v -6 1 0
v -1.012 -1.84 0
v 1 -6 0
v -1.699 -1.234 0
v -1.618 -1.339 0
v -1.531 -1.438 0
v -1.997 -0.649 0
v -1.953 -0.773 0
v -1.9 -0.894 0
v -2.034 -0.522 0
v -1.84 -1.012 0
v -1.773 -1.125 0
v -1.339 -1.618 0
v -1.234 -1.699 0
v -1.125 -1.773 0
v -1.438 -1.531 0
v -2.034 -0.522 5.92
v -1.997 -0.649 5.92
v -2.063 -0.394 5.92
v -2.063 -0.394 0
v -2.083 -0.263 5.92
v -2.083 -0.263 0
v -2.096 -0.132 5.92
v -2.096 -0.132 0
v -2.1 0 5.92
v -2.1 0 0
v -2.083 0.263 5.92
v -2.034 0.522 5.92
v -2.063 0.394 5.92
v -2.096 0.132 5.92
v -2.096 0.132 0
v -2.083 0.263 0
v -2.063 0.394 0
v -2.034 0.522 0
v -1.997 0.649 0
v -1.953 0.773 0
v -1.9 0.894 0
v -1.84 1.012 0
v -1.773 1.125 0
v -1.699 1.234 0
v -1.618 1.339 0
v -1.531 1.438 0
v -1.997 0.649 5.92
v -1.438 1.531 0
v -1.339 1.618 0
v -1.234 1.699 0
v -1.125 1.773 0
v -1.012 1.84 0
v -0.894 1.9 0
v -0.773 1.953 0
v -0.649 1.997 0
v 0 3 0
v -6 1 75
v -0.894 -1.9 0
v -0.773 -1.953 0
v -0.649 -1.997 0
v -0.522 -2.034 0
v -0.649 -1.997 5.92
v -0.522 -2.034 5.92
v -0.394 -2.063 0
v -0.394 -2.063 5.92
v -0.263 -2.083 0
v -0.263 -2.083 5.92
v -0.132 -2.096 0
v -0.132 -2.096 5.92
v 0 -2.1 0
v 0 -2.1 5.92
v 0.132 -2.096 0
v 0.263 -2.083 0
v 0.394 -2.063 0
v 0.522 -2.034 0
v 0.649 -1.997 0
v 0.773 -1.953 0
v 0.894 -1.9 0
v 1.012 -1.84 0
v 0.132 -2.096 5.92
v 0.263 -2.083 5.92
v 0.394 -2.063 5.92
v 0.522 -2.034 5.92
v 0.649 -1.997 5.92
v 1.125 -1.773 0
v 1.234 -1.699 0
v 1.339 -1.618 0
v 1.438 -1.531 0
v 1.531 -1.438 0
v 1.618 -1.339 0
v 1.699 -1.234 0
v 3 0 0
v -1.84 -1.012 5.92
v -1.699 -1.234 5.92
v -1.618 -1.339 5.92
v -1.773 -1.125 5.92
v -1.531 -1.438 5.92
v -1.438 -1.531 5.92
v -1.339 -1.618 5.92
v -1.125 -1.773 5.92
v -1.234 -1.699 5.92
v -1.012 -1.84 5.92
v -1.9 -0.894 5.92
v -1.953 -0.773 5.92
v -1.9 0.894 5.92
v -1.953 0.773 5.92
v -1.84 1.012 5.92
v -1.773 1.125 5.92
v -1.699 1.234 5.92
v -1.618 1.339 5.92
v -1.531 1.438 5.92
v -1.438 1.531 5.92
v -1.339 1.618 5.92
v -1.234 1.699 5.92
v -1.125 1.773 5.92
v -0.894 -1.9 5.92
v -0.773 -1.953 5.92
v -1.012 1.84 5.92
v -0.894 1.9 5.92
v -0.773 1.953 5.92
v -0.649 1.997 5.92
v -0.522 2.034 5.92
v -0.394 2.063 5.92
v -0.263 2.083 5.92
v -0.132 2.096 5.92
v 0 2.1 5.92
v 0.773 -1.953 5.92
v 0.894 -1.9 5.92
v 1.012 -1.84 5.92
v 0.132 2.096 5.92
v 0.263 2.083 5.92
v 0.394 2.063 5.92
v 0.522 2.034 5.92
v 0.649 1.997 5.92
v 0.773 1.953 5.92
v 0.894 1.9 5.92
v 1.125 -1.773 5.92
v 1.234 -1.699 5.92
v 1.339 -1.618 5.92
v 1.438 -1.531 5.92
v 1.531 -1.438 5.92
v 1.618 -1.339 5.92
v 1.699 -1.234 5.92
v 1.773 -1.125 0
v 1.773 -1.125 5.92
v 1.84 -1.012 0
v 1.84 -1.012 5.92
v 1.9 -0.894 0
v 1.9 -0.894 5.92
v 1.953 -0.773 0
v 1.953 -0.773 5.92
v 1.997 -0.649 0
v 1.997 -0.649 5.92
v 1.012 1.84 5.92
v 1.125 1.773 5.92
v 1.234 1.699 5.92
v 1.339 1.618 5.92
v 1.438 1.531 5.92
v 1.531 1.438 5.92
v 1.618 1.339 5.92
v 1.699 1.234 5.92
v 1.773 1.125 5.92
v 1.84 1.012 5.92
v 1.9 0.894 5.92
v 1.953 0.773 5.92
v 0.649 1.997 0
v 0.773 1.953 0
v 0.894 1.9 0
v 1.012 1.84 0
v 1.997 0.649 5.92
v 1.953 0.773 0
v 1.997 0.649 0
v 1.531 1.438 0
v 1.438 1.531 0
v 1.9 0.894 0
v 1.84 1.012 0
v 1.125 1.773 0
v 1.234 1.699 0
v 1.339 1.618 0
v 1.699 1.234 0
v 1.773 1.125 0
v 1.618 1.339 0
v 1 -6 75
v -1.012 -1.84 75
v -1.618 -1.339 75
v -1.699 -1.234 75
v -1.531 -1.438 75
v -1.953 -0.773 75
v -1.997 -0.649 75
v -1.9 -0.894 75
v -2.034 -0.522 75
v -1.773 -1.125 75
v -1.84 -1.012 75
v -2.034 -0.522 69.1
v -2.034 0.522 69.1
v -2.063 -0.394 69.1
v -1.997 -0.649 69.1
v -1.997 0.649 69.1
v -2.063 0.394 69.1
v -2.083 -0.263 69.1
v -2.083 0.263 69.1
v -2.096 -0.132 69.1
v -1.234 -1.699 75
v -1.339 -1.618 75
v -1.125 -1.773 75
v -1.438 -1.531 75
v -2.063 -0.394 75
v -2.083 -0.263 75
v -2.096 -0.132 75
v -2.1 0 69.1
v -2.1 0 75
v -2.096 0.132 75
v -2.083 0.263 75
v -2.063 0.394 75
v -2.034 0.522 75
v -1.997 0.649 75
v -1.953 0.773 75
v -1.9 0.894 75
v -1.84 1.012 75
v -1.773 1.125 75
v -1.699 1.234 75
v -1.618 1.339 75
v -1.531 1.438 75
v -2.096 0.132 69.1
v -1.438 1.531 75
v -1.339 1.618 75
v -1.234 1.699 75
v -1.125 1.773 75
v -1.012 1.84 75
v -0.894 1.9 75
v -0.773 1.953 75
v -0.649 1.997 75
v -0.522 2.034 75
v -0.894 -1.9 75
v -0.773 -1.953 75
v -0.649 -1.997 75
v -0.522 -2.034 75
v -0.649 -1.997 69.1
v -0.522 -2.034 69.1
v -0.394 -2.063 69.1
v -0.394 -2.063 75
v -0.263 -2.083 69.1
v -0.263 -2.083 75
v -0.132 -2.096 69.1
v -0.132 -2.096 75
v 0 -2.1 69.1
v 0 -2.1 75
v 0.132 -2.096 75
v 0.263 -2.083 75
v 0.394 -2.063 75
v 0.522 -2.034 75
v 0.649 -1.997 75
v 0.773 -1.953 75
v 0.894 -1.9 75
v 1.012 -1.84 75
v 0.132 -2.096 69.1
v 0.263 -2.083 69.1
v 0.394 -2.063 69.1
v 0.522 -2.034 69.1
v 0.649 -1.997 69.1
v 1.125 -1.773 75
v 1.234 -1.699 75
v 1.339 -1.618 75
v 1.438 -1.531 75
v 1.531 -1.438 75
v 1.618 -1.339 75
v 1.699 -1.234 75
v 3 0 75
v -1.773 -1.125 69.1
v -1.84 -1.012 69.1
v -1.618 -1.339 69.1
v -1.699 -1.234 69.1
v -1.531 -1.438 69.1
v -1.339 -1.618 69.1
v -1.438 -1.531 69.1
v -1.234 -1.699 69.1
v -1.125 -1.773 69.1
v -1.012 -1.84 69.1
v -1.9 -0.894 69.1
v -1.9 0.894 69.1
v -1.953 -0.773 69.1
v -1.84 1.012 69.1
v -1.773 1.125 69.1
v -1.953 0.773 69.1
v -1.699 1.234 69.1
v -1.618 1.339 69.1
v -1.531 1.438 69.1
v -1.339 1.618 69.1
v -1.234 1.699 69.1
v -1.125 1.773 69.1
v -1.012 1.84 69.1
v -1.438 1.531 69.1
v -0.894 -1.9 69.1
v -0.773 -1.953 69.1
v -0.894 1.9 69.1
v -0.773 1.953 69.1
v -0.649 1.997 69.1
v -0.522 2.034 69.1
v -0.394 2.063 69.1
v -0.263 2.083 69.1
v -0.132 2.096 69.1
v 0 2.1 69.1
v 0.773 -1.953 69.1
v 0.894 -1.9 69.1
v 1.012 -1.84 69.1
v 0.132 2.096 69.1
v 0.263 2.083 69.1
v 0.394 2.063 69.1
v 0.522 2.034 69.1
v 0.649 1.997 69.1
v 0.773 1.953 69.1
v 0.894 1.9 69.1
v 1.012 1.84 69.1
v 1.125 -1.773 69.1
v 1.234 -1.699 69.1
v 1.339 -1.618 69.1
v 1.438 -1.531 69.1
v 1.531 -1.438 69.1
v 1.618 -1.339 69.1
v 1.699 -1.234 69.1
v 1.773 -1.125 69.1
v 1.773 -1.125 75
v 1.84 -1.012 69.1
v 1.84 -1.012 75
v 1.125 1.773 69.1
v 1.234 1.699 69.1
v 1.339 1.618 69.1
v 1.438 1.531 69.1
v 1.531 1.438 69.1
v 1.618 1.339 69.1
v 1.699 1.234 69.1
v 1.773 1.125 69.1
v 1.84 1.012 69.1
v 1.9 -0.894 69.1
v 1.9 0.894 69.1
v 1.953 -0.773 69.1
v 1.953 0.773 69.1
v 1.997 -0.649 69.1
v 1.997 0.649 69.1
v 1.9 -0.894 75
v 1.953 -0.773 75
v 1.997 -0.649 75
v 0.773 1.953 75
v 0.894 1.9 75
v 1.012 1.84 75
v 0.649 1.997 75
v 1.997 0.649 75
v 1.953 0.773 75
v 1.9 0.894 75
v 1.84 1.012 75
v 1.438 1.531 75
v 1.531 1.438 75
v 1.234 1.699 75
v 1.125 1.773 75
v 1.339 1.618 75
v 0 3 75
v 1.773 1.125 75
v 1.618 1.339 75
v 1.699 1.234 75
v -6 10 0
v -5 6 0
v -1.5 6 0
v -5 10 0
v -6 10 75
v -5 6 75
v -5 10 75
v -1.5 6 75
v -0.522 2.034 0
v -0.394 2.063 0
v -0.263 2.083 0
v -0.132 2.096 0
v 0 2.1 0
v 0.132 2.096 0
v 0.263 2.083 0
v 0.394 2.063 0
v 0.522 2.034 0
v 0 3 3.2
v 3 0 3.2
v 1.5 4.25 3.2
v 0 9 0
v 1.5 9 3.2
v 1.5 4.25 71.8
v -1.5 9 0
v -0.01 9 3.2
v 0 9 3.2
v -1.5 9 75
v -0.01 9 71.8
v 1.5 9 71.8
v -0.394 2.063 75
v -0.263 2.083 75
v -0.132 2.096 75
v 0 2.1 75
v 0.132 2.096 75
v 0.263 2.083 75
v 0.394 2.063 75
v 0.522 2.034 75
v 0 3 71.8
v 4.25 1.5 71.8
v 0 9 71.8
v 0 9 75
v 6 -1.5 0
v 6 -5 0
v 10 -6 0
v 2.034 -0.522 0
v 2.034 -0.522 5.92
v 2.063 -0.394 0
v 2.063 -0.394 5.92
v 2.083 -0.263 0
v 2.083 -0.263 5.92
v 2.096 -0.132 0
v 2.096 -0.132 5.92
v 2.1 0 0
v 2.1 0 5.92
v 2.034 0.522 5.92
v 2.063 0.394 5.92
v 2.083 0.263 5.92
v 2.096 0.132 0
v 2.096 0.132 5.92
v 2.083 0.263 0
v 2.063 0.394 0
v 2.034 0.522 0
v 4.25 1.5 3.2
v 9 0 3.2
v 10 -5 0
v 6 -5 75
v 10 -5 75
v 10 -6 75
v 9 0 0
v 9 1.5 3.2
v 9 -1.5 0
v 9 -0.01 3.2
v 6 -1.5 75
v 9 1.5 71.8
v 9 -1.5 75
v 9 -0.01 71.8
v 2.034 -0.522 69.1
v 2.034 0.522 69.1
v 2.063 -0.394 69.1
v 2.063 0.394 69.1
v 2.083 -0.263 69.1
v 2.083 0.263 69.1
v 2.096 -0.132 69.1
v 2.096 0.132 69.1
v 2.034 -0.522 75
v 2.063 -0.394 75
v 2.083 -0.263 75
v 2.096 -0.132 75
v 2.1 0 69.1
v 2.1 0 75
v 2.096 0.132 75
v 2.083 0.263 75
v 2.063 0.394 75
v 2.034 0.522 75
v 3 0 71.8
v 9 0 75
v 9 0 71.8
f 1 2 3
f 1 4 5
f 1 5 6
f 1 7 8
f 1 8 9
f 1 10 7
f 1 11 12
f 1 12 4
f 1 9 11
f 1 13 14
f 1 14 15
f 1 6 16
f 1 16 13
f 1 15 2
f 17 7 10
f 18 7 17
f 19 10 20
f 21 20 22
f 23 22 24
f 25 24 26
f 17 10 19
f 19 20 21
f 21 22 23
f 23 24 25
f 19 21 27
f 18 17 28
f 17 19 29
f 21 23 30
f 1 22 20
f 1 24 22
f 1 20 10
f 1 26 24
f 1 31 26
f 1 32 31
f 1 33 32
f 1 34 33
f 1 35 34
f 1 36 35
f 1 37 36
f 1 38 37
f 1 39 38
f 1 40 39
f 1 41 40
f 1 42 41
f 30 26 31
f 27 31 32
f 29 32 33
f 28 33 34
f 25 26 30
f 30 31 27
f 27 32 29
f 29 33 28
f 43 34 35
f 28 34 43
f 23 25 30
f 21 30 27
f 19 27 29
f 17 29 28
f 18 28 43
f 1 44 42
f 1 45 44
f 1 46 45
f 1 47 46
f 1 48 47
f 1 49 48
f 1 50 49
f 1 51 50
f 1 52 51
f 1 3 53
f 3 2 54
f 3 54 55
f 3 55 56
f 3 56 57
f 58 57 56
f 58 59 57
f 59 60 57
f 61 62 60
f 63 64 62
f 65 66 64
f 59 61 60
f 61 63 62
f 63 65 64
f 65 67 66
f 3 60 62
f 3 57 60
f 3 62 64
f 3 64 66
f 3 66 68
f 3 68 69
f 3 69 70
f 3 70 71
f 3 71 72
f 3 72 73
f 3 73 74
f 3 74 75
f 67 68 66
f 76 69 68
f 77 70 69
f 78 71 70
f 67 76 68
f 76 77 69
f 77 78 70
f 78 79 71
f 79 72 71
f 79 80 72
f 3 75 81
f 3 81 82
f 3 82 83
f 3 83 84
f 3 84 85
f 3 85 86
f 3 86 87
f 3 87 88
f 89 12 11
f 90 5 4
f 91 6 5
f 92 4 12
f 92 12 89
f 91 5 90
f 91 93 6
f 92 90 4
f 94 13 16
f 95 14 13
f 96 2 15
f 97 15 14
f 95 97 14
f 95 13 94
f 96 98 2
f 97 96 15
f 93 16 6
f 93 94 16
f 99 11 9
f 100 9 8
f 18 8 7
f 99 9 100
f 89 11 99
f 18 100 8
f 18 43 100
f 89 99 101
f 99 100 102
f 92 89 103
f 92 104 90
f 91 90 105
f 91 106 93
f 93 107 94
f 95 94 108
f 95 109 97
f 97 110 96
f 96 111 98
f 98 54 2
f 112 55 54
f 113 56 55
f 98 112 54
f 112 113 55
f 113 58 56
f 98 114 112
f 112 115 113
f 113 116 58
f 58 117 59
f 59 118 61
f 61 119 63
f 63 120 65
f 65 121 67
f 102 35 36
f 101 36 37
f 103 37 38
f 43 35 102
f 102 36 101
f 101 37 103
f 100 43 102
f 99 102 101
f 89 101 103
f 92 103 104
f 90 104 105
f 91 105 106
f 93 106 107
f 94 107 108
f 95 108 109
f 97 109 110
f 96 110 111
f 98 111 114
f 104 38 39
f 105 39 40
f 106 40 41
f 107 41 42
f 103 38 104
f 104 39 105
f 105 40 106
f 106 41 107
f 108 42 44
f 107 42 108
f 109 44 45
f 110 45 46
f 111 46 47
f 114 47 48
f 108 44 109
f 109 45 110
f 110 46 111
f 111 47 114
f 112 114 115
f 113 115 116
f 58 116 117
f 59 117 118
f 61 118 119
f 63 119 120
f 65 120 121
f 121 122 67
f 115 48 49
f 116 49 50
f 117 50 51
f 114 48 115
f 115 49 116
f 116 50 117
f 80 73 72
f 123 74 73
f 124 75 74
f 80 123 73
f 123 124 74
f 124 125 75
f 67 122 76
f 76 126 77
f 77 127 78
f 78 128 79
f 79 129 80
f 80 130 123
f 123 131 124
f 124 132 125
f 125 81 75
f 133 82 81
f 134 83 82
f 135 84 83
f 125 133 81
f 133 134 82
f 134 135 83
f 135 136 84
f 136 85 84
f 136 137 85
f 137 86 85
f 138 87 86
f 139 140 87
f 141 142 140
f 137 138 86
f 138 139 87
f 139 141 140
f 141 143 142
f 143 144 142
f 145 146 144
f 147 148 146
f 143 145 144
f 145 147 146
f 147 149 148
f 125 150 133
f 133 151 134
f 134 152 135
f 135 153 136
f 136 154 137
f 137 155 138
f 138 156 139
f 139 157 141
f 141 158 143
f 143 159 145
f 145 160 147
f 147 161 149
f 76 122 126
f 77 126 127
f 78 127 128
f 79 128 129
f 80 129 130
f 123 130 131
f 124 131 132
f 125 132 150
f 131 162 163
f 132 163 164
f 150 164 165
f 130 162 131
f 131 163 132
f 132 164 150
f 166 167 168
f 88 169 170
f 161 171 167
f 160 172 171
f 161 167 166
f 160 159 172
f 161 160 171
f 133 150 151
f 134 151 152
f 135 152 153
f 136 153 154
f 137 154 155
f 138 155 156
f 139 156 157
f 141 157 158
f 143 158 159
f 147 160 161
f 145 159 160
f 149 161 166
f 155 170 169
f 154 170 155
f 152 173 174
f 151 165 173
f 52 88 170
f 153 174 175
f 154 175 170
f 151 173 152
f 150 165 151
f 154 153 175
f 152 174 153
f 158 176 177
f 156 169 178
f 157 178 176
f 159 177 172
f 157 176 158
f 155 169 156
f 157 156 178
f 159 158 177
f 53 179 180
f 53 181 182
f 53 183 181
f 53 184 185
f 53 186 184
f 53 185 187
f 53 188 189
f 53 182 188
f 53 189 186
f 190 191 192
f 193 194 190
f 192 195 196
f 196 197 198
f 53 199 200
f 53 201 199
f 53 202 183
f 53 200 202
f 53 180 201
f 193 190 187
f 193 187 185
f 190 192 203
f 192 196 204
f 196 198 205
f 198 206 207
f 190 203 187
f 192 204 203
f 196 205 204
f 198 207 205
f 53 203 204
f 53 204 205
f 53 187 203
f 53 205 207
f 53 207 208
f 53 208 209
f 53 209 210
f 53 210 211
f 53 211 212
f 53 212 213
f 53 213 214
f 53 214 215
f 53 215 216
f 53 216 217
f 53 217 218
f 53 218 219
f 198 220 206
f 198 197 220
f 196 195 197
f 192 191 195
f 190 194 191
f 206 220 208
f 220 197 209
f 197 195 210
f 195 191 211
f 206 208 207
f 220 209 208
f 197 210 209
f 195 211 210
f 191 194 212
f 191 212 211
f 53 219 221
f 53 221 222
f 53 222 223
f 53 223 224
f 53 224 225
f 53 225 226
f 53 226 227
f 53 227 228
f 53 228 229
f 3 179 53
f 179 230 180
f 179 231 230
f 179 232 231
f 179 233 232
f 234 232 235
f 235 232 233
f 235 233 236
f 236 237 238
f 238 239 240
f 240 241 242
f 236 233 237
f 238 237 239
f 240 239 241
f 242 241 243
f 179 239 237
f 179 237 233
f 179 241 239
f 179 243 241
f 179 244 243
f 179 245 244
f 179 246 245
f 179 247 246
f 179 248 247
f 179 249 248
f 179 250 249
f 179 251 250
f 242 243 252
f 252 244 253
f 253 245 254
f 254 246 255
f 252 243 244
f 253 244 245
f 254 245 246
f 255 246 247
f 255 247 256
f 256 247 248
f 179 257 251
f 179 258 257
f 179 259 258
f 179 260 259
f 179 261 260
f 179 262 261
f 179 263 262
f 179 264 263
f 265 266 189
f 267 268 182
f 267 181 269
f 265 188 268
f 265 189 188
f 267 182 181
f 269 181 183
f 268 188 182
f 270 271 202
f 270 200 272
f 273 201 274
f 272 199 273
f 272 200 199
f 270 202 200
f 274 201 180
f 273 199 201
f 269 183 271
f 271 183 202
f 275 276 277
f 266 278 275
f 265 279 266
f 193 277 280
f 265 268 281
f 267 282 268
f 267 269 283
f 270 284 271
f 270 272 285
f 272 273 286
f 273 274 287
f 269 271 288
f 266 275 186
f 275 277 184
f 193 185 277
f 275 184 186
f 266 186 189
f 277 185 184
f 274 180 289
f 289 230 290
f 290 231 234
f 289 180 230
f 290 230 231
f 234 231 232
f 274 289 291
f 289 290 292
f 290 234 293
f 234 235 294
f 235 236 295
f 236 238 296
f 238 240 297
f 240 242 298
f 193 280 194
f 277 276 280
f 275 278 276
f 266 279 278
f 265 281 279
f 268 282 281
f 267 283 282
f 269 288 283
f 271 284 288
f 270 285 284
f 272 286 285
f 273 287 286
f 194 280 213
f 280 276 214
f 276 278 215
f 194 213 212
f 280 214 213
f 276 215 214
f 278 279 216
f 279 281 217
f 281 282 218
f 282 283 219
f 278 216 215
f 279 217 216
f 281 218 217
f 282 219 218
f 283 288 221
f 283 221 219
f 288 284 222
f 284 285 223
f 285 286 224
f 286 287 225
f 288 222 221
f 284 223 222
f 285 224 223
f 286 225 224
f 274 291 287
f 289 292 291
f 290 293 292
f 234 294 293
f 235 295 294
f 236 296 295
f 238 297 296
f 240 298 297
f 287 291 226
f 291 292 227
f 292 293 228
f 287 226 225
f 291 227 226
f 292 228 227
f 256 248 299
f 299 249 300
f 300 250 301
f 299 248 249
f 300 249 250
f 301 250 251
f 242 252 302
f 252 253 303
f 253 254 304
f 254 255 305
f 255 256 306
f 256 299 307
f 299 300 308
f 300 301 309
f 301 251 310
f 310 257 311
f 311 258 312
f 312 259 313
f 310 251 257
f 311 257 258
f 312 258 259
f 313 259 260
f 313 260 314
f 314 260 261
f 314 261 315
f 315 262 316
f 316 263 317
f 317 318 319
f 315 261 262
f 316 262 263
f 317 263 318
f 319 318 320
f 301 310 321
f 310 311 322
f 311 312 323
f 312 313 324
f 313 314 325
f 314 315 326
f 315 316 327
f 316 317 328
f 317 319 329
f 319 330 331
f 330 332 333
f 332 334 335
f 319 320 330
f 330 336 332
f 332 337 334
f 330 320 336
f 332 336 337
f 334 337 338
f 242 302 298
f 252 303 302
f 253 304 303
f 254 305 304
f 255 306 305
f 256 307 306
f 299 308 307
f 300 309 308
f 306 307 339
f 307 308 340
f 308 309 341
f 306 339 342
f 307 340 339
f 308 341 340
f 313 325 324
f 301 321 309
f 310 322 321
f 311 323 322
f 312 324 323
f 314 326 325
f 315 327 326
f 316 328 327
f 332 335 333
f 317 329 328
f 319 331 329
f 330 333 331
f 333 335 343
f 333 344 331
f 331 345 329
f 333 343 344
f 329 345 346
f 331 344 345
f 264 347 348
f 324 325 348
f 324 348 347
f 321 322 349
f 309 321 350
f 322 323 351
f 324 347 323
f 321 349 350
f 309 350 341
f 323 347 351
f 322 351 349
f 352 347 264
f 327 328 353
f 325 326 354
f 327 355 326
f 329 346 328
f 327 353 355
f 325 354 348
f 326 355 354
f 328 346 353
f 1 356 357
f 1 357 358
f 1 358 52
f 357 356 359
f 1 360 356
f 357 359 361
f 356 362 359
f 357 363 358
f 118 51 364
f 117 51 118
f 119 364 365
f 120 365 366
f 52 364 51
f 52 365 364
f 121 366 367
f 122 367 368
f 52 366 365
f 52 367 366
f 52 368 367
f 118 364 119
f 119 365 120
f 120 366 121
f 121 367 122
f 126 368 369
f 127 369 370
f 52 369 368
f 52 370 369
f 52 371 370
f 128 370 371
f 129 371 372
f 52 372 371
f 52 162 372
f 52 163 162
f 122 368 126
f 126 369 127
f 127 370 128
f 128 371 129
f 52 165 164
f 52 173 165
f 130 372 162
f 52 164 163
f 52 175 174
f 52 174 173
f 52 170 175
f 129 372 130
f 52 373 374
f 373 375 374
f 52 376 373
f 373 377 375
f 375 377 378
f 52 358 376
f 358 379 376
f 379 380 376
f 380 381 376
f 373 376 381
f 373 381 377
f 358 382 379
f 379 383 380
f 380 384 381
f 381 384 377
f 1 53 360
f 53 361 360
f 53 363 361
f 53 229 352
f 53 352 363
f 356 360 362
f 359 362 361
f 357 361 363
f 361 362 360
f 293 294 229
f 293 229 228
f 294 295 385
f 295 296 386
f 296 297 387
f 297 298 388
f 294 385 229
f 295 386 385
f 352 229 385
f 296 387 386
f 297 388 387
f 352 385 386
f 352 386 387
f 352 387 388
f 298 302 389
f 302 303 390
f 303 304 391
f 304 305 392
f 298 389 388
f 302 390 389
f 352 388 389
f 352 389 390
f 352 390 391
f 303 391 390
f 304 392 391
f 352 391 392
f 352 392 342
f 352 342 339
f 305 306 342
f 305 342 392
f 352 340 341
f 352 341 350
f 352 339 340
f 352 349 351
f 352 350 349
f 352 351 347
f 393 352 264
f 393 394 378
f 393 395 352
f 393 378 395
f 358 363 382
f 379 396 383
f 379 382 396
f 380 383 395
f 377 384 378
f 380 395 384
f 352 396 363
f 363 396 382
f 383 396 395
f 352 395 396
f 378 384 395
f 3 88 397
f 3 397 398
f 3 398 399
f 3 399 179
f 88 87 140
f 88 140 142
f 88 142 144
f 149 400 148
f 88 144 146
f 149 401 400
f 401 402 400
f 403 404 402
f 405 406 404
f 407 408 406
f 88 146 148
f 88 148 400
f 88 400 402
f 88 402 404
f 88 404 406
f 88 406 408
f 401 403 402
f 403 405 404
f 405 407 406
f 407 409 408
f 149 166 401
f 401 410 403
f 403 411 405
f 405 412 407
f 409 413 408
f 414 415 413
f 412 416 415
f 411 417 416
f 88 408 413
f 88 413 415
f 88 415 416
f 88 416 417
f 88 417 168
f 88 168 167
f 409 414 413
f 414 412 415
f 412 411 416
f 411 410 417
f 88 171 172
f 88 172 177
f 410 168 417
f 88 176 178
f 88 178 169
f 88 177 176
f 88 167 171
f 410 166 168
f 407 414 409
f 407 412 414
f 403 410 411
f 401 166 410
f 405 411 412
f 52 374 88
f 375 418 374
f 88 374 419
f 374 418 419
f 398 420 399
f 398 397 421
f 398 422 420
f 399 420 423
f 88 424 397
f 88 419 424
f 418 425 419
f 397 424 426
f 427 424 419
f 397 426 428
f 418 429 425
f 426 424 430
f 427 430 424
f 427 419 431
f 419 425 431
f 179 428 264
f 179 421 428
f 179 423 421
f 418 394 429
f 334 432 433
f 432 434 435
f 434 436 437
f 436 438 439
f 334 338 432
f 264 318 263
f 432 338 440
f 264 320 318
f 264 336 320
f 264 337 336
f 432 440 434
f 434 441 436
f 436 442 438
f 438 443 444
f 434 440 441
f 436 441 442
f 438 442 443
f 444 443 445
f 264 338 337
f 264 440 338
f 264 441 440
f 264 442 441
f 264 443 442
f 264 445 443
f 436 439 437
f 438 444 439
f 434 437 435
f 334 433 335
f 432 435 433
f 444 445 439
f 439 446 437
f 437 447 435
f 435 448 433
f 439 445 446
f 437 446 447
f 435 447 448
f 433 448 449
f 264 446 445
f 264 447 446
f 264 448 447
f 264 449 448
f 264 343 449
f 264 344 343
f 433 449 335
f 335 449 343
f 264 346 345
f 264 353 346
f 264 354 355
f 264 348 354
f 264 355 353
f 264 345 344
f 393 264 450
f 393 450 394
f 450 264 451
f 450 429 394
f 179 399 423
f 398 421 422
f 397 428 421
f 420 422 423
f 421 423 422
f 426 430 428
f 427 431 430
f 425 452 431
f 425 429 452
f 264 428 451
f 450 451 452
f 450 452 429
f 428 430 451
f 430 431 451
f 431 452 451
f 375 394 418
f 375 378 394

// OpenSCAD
// file: Kante.scad
$fn = 100;
tiny = 0.01;


/*

module stl_model() {
  import("Kante_5cm.stl");
}

color("blue") translate([30,0,0]) stl_model();
*/


/*************************************************
 * hoehe in mm
 ************************************************/

module Kante(hoehe) {
  x1 = 10;   // #1. unten rechts
  y1 = -6;   // #1.
  y2 = -5;   // #2
  x2 = +6;   // #3
  y3 = -1.5; // #4
  x3 = +9;   // #5
  y4 = +0;   // #6
  x4 = +3;   // #7
  y5 = +1;   // #8
  //--
  y6 = +1.5;
  x5 = 4.25;
  y7 = 3;
  
  dh = 3   + 0.2; // Toleranz
  h1 = hoehe - 2*dh;  

  h2 = 5.7 + 0.2; // Toleranz Innenloch
  d2 = 4.0 + 0.2; // Toleranz Innenloch

  color("red")
  difference() {
     union() {
        //color("red")
        linear_extrude(height=hoehe)
        polygon(points=[
          [x1,y1], // 10,-6
          [x1,y2], // 10,-5
          [x2,y2], //  6,-5
          [x2,y3], //  6,-1.5 
          [x3,y3], //  9,-1.5
          [x3,y4], //  9,0
          [x4,y4], //  3,0
          // copies from here.
          [y4,x4], //  0,3
          [y4,x3], //  0,9
          [y3,x3], // -1.5,9
          [y3,x2], // -1.5,6
          [y2,x2], //  -5,6
          [y2,x1], //  -5,10
          [y1,x1], //  -6,10
          [y1,y5], //  -6,1
          [y5,y1], //  -6,1
          [x1,y1]  // 10,-6
          ]); // polygon
        translate([0,0,dh])
        linear_extrude(height=h1)
        polygon(points=[
          [x3,y4 - tiny], // 9,-0
          [x3,y6], // 9,1.5
          [x5,y6], // 4,1.5
          [y6,x5], // 1.5,4
          [y6,x3], // 1.5,9
          [y4 - tiny,x3], // -0,9
          [y4 - tiny,y7], // -0,3
          [y7,y4 - tiny], // 3,-0
          [x3,y4 - tiny], // 9,-0
          ]); // polygon
        } // union

     translate([0,0,-tiny])    cylinder(h=h2+3*tiny, d=d2); // Loch unten
     translate([0,0,hoehe-h2]) cylinder(h=h2+2*tiny, d=d2); // Loch oben
  } // difference
}
// main file
use <Kante.scad>
$fn = 100;

Kante(75); // hoehe in mm
